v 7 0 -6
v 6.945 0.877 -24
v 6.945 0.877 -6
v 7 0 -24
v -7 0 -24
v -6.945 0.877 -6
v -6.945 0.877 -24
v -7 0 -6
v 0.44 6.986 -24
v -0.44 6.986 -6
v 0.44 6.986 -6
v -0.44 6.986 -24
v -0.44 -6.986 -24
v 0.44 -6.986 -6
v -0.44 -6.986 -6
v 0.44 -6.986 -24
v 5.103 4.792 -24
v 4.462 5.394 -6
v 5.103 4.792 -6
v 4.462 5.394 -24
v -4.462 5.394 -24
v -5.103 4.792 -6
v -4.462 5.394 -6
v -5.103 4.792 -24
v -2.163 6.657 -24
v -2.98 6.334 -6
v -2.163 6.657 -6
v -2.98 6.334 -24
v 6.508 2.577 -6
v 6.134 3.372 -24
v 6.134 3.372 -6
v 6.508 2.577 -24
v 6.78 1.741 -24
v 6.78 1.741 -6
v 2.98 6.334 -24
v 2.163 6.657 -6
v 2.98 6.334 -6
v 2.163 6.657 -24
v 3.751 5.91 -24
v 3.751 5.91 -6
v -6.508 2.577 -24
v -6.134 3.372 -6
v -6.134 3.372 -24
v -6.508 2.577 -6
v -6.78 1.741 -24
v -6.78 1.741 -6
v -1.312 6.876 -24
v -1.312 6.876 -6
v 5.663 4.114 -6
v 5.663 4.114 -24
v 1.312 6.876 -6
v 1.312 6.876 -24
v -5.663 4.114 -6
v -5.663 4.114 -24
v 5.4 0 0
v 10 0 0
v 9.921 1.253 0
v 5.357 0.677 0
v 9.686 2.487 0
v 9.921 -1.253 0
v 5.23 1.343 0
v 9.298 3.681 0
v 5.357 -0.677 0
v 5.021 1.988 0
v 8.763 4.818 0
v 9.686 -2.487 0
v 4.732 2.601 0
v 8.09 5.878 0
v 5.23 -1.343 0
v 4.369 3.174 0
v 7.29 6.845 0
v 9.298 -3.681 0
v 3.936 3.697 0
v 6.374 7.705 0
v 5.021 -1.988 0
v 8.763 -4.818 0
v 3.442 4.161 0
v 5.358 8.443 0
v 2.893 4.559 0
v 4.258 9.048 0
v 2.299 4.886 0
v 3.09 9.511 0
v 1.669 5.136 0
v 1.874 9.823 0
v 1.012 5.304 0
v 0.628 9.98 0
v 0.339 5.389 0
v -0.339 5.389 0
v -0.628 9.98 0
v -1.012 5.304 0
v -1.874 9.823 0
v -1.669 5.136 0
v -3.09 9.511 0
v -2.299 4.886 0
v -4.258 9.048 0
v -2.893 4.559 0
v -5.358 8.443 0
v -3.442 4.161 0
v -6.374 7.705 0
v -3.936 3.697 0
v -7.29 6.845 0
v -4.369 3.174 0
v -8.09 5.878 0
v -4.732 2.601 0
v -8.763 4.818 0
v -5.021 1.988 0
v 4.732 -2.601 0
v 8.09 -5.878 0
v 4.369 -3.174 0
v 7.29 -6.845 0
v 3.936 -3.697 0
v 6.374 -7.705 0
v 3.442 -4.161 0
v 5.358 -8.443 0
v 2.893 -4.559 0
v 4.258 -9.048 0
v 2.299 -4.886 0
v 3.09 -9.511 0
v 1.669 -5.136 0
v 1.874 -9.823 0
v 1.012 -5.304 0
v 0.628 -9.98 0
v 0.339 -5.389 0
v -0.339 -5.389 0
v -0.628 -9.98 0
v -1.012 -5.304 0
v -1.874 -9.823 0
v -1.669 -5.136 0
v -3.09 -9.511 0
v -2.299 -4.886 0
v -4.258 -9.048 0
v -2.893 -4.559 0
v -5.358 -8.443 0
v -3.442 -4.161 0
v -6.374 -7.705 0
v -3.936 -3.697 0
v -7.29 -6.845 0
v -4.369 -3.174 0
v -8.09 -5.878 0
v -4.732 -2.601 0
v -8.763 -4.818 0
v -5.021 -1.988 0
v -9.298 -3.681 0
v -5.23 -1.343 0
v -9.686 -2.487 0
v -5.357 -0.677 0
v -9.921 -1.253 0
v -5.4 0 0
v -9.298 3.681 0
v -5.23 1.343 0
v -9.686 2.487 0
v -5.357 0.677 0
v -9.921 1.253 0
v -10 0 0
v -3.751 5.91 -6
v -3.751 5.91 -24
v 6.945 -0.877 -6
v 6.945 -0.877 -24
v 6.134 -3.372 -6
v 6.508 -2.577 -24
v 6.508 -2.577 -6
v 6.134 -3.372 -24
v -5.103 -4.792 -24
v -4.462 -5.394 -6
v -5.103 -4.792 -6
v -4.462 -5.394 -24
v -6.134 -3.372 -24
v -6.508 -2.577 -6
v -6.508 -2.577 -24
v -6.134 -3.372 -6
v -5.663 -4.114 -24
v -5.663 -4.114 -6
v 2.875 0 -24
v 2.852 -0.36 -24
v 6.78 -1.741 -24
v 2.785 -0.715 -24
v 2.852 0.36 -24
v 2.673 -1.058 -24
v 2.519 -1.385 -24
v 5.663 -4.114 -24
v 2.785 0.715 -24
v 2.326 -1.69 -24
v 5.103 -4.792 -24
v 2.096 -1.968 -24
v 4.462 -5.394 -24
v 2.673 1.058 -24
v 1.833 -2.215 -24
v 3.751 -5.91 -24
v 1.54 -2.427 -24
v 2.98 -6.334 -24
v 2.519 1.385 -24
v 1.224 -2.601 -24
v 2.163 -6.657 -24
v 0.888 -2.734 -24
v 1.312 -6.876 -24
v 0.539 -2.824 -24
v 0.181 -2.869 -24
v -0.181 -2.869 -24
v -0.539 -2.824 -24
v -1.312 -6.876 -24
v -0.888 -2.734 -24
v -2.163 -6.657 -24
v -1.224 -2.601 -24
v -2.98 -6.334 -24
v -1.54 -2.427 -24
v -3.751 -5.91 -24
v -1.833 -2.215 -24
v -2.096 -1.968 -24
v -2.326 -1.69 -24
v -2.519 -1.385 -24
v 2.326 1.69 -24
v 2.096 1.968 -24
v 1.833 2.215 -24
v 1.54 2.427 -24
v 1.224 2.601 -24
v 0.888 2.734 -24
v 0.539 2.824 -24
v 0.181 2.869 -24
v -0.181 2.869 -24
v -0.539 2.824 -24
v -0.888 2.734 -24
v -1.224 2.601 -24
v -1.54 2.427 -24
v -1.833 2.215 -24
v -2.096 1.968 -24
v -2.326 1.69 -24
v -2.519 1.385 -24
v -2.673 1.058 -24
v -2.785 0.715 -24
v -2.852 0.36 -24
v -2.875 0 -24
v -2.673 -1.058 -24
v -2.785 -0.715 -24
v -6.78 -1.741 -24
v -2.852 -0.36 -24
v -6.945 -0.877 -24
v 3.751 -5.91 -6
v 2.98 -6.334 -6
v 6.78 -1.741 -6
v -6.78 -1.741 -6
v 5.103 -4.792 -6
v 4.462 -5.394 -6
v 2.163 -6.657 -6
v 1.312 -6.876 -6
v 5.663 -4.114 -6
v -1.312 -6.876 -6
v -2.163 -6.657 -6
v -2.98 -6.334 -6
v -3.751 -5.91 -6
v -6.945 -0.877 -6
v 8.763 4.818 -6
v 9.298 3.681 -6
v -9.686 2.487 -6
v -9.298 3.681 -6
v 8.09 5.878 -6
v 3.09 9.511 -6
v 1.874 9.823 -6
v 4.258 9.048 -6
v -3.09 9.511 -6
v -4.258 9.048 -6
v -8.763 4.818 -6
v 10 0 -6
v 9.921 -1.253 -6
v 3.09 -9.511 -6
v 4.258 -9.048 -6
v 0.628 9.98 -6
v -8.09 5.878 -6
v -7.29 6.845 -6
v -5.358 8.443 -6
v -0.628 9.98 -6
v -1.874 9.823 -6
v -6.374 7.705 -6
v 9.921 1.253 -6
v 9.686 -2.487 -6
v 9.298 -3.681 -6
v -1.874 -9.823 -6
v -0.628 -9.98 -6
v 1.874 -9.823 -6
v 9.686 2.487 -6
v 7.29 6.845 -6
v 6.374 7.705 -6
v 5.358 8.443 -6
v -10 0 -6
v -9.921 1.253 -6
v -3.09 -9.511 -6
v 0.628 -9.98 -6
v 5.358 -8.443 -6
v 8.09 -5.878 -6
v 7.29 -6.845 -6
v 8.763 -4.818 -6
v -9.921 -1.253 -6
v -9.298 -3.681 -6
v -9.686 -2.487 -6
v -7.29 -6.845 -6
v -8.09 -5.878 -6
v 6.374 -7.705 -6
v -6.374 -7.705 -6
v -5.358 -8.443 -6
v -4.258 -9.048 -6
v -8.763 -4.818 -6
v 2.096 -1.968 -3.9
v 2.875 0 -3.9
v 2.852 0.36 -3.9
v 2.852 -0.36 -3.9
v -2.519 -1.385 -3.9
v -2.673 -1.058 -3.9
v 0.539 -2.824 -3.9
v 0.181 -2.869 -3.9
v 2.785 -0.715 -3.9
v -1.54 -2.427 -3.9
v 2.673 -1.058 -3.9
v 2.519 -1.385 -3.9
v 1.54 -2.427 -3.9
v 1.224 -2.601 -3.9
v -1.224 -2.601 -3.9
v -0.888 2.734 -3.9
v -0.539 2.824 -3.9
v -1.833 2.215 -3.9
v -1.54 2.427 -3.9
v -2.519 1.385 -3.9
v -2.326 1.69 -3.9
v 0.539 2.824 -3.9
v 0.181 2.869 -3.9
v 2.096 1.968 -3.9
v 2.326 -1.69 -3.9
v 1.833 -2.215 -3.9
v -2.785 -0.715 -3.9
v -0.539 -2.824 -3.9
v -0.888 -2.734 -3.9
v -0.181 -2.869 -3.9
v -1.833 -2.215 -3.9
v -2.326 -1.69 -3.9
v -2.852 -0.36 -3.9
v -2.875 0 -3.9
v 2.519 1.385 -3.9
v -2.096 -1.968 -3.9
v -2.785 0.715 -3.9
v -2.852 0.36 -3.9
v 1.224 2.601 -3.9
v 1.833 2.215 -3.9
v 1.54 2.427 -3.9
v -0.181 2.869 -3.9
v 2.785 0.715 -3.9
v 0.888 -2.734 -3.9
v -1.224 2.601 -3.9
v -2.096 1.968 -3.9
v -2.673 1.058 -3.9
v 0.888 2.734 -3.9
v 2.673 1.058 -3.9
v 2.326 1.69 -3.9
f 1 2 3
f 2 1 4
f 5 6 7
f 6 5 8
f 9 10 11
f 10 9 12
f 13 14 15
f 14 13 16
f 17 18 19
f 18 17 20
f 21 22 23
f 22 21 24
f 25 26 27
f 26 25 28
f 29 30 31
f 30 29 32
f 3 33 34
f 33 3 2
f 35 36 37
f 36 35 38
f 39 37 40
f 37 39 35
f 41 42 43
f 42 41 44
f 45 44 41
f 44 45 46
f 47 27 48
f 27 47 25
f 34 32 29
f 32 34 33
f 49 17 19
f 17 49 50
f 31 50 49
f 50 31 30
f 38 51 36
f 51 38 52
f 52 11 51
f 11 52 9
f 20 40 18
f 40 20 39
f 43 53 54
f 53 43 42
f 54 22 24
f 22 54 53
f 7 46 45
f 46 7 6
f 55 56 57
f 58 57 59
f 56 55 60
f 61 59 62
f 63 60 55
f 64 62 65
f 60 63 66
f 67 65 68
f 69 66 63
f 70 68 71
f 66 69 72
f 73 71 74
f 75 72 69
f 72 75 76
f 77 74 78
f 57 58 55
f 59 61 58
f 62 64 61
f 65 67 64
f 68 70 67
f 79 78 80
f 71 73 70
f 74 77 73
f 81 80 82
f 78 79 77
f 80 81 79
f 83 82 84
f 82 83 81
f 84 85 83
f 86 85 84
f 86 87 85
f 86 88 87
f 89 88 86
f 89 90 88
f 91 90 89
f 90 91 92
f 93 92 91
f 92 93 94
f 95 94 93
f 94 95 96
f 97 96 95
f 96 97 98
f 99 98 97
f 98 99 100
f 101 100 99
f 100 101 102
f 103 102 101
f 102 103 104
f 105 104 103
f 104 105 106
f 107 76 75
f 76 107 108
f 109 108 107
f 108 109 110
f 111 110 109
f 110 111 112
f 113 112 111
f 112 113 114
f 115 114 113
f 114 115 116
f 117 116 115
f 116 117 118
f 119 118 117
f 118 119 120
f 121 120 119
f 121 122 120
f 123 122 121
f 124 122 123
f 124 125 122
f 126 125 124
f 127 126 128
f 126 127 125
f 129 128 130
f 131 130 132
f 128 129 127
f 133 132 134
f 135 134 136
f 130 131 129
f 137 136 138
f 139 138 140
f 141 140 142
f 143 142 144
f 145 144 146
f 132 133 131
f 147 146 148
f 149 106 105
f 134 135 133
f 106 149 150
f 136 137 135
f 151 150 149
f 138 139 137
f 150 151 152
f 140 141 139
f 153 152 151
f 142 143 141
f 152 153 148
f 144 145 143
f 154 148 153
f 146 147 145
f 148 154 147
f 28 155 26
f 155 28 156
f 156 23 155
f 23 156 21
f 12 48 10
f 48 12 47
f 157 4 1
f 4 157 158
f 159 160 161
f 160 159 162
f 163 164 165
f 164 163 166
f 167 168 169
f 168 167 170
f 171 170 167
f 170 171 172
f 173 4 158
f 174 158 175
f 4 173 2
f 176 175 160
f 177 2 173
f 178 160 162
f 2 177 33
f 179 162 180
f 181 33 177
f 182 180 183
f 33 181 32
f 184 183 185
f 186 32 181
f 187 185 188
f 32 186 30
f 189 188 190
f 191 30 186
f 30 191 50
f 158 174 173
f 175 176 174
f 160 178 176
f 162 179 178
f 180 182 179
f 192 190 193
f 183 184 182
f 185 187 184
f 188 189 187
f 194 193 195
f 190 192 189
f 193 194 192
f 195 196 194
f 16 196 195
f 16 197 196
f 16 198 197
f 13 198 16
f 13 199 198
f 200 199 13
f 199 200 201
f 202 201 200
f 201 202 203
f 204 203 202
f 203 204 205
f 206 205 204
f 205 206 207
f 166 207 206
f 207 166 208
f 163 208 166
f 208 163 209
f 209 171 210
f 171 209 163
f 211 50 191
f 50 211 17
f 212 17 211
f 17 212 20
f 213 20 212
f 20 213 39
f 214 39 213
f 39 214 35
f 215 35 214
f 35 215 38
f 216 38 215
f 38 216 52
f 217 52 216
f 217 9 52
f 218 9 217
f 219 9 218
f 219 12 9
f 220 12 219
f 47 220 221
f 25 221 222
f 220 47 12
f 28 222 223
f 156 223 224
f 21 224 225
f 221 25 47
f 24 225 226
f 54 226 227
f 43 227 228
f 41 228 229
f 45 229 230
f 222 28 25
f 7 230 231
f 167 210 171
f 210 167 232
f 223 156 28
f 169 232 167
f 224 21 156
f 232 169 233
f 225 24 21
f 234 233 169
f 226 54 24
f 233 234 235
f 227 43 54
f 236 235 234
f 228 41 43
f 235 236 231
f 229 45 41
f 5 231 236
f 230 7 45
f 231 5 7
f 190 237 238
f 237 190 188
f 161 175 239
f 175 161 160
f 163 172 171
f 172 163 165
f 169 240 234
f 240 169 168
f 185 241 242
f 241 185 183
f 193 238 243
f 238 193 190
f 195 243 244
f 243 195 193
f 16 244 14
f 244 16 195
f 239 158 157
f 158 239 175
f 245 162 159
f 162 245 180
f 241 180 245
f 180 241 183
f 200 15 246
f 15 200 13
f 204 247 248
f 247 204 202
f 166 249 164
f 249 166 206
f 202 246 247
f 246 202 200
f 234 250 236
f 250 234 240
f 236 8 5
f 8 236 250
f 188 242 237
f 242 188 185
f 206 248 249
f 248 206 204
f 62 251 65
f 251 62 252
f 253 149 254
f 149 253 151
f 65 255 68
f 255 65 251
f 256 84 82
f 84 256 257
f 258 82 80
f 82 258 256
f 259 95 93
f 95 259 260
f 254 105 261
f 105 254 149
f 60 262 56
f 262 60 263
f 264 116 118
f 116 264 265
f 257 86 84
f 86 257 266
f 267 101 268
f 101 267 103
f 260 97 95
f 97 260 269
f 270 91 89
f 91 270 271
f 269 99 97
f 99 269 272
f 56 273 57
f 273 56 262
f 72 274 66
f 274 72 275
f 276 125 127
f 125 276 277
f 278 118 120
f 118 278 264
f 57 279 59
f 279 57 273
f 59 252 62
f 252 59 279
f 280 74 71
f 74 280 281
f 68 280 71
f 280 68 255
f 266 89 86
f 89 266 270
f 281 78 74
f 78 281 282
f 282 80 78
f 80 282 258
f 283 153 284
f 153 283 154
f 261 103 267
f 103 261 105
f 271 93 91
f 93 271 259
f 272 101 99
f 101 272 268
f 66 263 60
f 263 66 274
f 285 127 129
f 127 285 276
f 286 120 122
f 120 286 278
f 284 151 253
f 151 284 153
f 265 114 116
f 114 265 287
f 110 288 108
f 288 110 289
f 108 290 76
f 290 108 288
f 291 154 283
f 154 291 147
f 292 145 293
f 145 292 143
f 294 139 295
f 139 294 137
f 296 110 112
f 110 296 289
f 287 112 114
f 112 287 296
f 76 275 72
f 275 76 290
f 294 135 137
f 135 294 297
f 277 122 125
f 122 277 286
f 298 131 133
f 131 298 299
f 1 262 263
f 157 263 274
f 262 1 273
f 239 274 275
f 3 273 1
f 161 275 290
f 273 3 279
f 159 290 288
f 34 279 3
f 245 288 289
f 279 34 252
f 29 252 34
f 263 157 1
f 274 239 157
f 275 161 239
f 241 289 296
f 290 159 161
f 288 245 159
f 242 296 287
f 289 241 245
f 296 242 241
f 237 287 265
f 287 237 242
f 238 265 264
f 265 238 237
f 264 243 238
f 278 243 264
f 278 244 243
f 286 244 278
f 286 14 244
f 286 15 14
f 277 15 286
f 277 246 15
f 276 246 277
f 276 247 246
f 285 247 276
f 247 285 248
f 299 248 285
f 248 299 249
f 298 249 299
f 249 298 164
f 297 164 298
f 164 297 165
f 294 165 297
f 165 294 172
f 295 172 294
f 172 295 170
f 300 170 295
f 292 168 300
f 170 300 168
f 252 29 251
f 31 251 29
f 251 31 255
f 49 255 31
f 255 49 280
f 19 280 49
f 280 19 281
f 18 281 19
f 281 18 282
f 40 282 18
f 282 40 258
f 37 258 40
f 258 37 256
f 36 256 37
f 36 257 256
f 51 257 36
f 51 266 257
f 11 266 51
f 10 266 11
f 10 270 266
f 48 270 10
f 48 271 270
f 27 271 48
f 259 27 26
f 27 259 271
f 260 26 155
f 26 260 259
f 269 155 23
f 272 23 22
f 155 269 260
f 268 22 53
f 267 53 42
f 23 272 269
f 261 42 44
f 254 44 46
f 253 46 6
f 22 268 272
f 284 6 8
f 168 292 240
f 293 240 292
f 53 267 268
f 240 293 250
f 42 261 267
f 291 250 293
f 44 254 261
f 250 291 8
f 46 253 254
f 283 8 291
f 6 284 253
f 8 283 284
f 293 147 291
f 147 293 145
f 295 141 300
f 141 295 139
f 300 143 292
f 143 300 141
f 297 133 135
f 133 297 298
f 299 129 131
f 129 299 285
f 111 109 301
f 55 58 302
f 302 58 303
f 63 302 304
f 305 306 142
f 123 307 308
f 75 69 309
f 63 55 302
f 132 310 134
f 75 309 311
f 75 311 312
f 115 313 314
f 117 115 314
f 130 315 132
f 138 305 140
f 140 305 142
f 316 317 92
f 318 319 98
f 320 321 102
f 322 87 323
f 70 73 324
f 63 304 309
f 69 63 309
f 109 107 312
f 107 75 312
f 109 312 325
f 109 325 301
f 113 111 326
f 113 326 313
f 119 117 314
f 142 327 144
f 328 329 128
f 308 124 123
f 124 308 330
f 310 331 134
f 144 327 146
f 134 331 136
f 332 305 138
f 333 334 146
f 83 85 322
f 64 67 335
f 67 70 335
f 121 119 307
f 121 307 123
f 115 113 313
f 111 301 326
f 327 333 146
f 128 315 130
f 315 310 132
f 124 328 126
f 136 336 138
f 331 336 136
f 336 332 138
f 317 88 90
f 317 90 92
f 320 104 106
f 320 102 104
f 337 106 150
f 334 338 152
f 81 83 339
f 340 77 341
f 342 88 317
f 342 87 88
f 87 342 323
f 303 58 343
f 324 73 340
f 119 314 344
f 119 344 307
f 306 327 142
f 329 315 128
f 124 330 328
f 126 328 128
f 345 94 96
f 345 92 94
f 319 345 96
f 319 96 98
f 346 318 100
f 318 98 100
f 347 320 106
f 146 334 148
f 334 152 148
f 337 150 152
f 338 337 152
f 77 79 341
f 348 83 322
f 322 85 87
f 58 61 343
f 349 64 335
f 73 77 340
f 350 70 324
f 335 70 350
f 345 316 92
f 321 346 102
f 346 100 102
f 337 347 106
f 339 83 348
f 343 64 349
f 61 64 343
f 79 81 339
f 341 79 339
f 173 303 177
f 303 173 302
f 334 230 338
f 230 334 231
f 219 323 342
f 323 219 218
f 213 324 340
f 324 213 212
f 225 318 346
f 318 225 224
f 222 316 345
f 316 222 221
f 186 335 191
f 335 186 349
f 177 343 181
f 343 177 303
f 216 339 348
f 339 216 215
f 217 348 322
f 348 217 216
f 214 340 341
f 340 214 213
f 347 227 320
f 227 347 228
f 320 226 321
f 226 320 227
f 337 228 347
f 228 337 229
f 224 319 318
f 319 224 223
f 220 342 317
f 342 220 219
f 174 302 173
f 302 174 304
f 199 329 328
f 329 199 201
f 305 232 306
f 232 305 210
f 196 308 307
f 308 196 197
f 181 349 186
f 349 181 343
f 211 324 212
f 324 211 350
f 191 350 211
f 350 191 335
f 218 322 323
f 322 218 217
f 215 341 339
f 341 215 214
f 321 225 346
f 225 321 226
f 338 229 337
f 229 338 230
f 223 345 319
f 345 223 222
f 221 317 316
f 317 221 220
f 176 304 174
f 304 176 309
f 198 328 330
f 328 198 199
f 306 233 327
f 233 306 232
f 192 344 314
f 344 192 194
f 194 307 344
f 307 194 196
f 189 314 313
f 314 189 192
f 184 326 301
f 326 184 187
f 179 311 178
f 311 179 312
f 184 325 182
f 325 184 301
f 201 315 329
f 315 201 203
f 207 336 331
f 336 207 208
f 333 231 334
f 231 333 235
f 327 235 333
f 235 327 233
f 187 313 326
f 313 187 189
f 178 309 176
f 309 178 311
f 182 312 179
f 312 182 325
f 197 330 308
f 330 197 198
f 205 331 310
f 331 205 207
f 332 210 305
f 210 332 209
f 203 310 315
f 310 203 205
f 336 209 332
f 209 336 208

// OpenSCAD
$fn = 50;


difference() {
	union() {
		translate(v = [0, 0, -24.0000000000]) {
			cylinder(h = 24, r = 7.0000000000);
		}
		translate(v = [0, 0, -6.0000000000]) {
			cylinder(h = 6, r = 10.0000000000);
		}
	}
	union() {
		translate(v = [0, 0, 0]) {
			rotate(a = [0, 0, 0]) {
				difference() {
					union() {
						#translate(v = [0, 0, -24.0000000000]) {
							cylinder(h = 24, r = 2.6000000000);
						}
						#translate(v = [0, 0, -3.9000000000]) {
							cylinder(h = 3.9000000000, r = 7.0000000000, r1 = 2.8750000000, r2 = 5.4000000000);
						}
						#translate(v = [0, 0, -24.0000000000]) {
							cylinder(h = 24, r = 2.8750000000);
						}
						#translate(v = [0, 0, -24.0000000000]) {
							cylinder(h = 24, r = 2.6000000000);
						}
					}
					union();
				}
			}
		}
	}
}
